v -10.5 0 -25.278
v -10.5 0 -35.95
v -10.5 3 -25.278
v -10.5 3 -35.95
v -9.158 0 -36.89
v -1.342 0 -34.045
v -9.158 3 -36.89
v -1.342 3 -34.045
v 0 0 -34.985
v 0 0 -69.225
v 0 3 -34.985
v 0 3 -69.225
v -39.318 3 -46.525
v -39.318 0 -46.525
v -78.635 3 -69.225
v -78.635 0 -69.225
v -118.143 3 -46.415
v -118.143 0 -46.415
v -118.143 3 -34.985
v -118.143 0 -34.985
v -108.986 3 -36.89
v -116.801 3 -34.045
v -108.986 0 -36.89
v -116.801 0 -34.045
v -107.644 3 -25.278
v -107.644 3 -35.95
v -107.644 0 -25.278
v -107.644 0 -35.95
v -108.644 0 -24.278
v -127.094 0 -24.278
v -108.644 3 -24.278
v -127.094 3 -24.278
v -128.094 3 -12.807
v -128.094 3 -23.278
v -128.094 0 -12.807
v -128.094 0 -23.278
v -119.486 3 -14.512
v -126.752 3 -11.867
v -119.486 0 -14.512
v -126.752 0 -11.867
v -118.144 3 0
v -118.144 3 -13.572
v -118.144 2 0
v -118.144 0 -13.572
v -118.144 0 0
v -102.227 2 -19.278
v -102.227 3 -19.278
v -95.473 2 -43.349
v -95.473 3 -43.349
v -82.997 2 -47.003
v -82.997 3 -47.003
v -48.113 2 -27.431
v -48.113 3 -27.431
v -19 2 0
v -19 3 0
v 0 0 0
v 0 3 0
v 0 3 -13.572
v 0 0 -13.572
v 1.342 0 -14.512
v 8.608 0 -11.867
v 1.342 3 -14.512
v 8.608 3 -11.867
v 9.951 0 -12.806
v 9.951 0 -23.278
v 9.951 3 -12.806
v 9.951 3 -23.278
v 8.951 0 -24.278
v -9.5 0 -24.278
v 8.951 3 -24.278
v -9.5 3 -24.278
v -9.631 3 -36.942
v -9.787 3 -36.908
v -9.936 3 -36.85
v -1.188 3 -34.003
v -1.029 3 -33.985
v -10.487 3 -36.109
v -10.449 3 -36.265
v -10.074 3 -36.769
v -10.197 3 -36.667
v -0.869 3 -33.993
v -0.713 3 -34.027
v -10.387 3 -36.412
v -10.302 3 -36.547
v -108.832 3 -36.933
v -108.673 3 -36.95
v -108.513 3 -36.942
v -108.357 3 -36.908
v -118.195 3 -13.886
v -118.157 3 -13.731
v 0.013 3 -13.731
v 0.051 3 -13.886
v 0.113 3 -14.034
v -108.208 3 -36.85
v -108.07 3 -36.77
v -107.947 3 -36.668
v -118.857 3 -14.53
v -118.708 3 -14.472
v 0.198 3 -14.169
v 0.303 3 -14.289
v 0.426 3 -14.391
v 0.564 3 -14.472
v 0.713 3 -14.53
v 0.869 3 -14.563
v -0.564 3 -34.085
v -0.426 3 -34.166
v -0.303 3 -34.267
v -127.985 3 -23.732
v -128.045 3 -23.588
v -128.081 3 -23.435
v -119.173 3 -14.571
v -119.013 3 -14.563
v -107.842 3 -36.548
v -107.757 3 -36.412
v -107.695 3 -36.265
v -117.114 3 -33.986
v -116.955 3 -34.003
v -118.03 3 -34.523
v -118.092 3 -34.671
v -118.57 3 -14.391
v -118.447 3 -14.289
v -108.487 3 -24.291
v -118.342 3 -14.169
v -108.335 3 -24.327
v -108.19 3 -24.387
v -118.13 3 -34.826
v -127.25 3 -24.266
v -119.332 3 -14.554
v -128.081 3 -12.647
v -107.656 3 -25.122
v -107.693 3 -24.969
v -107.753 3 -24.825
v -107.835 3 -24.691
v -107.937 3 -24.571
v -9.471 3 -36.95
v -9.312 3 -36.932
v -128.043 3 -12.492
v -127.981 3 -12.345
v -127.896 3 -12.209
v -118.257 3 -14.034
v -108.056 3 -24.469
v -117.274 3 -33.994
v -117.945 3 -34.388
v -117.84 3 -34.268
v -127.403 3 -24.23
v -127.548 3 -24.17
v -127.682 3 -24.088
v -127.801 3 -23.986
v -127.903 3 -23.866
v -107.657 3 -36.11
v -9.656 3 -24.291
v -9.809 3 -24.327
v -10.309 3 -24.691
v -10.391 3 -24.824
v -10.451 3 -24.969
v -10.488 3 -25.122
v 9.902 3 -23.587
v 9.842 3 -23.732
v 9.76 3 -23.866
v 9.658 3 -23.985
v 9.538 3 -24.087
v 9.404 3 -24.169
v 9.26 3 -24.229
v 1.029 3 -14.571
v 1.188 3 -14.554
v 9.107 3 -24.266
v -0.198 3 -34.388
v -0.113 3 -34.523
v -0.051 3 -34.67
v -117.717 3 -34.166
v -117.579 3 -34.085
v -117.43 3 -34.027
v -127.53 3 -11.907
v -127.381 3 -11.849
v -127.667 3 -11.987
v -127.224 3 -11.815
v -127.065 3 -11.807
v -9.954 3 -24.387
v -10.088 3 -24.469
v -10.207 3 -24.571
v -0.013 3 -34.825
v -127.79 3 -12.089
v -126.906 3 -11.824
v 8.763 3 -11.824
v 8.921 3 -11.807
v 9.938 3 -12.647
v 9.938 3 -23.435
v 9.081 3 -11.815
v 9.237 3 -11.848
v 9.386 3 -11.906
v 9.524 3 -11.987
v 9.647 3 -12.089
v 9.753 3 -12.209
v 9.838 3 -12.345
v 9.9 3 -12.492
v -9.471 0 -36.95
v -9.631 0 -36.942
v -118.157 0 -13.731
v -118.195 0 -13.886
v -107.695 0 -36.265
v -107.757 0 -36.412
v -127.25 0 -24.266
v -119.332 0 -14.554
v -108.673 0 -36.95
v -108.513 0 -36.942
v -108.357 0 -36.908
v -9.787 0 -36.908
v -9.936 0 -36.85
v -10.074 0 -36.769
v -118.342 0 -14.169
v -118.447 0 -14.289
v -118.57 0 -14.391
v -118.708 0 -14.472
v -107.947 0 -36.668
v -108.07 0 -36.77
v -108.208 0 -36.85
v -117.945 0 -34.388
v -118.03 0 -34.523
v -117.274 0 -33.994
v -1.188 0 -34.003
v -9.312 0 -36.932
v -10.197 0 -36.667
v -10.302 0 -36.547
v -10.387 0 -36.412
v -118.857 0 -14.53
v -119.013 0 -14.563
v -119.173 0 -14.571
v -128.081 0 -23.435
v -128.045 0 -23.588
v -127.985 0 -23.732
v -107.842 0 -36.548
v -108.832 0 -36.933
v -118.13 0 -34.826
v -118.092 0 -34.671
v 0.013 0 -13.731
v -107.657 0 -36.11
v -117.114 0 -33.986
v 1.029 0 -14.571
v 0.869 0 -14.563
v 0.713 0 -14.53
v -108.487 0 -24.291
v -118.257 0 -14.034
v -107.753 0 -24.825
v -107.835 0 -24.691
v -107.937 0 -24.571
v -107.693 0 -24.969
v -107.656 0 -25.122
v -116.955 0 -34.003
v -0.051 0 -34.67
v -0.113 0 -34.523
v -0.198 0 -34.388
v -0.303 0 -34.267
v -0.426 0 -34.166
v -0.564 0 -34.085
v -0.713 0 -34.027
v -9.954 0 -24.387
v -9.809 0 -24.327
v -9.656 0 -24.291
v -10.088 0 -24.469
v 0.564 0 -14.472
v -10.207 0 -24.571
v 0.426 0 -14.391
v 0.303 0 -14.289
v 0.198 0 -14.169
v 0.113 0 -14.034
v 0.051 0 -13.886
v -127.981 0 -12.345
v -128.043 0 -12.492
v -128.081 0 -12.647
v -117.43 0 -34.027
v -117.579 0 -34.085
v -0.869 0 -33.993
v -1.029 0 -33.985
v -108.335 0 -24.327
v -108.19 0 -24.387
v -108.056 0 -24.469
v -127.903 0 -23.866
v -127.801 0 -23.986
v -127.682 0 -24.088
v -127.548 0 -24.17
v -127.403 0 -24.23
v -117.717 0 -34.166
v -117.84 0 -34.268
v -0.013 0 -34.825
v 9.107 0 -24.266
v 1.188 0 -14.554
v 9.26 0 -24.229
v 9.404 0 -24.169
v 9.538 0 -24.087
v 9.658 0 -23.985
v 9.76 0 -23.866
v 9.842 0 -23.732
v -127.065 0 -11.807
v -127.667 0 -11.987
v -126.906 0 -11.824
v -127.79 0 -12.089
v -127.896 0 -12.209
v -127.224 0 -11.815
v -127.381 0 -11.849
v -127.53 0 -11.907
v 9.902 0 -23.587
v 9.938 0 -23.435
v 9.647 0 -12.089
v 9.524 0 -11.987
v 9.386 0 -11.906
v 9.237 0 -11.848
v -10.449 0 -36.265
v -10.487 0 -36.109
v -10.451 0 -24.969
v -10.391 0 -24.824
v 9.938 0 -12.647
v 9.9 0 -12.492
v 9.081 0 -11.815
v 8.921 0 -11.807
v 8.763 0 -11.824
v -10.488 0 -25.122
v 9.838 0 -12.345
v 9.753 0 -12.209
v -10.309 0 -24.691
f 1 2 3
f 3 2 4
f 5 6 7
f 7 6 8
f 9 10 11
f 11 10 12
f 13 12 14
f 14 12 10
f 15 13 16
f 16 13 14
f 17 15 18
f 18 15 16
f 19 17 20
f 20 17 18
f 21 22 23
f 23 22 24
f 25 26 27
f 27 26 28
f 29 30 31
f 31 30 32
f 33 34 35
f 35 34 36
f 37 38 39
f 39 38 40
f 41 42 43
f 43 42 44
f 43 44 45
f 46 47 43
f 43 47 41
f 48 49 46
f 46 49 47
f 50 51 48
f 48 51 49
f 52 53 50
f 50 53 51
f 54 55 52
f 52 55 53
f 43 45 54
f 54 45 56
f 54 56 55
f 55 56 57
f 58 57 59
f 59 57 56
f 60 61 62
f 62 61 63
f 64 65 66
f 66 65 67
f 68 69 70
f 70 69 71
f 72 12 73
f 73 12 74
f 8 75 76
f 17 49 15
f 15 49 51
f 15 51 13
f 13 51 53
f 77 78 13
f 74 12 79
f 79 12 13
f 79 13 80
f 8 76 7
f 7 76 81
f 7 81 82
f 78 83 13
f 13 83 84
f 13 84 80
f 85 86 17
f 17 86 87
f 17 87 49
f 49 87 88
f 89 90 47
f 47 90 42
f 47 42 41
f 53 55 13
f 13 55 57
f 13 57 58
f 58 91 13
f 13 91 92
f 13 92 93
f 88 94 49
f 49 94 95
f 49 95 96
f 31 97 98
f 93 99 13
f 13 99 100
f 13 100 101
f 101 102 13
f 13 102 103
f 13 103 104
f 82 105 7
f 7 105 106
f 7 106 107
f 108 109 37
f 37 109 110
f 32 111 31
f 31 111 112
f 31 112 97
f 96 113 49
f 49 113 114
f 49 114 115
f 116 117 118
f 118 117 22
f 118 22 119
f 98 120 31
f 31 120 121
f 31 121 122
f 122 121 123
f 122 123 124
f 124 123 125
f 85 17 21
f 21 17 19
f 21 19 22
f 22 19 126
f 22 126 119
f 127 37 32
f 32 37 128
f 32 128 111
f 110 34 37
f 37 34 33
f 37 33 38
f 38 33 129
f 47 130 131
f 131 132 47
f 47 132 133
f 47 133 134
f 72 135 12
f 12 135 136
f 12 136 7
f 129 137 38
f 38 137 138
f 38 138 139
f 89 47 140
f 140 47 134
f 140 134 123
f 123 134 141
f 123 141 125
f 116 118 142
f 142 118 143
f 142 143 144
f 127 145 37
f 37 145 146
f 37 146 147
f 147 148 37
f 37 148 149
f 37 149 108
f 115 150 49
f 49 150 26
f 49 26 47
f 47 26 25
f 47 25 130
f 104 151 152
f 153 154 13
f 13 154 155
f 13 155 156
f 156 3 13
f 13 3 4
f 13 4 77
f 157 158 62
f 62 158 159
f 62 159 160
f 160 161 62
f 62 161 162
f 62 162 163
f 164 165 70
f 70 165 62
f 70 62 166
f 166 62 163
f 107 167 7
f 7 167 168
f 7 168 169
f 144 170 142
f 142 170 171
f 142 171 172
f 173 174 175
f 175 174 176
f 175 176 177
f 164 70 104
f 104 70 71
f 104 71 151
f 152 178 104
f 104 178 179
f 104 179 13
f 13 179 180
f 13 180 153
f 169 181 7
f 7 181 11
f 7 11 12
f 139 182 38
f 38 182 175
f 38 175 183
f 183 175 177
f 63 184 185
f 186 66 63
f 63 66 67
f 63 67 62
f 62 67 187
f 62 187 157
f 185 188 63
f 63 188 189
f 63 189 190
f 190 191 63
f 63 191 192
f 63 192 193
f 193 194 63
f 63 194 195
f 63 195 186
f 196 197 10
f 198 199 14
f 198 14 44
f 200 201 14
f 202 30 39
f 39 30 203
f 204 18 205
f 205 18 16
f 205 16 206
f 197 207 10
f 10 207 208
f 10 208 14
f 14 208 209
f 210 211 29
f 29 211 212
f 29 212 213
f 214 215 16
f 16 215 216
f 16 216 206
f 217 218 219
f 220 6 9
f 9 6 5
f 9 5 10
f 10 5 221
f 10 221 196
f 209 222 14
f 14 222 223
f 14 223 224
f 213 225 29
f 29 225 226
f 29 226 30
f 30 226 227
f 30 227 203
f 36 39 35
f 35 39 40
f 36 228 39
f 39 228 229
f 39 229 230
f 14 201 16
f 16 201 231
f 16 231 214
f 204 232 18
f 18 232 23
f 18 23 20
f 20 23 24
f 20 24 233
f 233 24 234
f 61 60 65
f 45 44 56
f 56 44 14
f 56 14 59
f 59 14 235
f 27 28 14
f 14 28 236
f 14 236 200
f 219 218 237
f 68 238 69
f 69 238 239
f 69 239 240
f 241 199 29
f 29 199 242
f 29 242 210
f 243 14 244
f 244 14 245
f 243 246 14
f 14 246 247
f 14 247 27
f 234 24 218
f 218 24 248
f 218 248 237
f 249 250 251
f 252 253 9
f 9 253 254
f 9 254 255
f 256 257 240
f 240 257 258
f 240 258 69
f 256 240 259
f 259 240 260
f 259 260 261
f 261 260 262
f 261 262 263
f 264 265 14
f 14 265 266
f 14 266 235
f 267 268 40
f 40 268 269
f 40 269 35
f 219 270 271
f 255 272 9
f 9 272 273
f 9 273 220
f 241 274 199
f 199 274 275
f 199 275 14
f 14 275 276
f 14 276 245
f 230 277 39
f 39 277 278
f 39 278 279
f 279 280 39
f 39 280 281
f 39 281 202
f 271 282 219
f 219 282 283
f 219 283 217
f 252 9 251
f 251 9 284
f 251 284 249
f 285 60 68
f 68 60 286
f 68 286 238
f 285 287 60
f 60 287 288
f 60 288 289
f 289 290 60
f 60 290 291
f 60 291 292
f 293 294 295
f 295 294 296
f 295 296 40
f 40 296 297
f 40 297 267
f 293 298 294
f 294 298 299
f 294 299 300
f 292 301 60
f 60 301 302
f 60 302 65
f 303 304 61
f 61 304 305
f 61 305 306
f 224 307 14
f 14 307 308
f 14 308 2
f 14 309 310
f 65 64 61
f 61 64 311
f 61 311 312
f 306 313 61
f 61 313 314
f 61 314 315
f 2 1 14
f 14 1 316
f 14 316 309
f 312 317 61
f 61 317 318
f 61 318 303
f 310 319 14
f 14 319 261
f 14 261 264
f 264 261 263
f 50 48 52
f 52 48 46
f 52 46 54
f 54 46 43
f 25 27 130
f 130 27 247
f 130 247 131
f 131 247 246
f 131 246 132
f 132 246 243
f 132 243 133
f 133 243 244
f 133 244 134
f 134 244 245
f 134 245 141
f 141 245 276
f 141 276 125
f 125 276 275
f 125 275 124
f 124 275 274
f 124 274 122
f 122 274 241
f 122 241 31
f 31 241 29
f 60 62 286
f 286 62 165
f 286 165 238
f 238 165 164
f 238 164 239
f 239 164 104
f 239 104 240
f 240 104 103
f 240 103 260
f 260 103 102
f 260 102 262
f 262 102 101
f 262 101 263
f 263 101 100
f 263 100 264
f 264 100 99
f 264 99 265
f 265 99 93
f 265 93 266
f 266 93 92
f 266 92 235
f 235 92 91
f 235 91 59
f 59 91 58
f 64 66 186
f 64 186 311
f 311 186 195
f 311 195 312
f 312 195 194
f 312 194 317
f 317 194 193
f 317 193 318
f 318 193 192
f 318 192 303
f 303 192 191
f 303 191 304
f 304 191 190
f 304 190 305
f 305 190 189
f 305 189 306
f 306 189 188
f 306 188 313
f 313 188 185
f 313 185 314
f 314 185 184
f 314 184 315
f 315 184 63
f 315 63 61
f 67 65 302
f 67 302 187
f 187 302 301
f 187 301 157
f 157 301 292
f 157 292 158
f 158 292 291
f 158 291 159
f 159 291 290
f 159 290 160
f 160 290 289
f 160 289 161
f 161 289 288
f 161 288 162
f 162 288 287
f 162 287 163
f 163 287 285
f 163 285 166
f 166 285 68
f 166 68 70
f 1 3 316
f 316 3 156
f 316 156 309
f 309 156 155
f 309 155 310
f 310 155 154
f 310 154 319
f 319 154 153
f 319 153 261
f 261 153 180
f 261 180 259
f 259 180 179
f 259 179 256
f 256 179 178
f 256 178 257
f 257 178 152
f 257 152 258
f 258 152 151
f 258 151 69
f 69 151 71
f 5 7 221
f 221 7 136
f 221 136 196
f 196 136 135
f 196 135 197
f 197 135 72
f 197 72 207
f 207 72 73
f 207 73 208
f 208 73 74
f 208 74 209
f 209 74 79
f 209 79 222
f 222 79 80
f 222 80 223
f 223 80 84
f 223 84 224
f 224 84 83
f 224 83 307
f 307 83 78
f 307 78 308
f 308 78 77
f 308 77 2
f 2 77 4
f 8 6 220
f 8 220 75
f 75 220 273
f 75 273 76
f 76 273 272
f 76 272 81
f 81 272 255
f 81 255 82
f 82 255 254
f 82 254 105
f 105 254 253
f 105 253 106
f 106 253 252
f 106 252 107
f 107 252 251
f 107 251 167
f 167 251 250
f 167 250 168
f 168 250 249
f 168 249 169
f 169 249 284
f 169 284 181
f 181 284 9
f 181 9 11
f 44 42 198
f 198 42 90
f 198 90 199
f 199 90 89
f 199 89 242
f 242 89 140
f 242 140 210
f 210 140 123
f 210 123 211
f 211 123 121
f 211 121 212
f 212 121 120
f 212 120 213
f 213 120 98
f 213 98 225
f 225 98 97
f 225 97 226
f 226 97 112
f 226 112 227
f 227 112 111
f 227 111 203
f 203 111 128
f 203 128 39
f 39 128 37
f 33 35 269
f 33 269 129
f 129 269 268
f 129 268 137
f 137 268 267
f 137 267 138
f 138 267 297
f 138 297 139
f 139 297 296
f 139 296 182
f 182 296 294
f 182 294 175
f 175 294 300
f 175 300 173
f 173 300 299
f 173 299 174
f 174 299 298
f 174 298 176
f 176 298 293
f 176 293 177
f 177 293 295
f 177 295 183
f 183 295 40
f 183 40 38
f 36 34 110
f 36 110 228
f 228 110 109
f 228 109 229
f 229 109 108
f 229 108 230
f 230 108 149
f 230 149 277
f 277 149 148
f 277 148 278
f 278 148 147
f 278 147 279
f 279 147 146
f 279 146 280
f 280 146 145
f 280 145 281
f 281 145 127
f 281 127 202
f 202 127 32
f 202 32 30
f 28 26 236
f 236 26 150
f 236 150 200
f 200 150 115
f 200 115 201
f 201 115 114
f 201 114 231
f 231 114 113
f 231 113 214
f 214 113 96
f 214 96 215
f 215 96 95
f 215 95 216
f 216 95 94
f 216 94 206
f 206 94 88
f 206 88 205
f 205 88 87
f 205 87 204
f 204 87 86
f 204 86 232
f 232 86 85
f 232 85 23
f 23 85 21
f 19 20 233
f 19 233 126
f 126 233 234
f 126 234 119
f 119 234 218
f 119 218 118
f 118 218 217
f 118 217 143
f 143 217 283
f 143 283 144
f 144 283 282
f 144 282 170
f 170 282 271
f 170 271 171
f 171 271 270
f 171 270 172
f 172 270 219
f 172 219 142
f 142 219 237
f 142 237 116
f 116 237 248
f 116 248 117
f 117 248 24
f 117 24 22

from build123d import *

# Parameters (mm, degrees)
P_IDAT_VYSUNUT_M1_DEPTH = 3
P_IDAT_VYSUNUT_M2_DEPTH = 2
ZAOBLIT3_R              = 1


with BuildPart() as part:
    # Skica1 → P_idat vysunut_m1 (new body)
    with BuildSketch(Plane(origin=(0, 0, 0), x_dir=(1, 0, 0), z_dir=(0, 1, 0))):
        Polygon((-118.143750166, 15), (-118.143750166, 0), (-102.227105248, 19.278496169), (-95.473037065, 43.348863075), (-82.997228437, 47.003202833), (-48.112980408, 27.430537213), (-19, 0), (0, 0), (0, 15), (9.950504516, 11.37831254), (9.950504516, 24.27831254), (-10.5, 24.27831254), (-10.5, 37.37831254), (0, 33.55662508), (0, 69.224902673), (-39.317553332, 46.524902673), (-78.635106664, 69.224902673), (-118.143185584, 46.414902673), (-118.143185584, 33.5570142), (-107.643750166, 37.378496169), (-107.643750166, 24.278496169), (-128.093750166, 24.278496169), (-128.093750166, 11.378496169), align=None)
    extrude(amount=P_IDAT_VYSUNUT_M1_DEPTH)

    # Skica1_3 → P_idat vysunut_m2 (add)
    with BuildSketch(Plane(origin=(0, 0, 0), x_dir=(1, 0, 0), z_dir=(0, 1, 0))):
        Polygon((-102.227105248, 19.278496169), (-118.143750166, 0), (-19, 0), (-48.112980408, 27.430537213), (-82.997228437, 47.003202833), (-95.473037065, 43.348863075), align=None)
    extrude(amount=P_IDAT_VYSUNUT_M2_DEPTH)

    # Zaoblit3
    zaoblit3_edges = [part.edges().sort_by_distance(p)[0] for p in [
        (-10.5, 1.5, -24.27831254),
        (9.950504516, 1.5, -24.27831254),
        (9.950504516, 1.5, -11.37831254),
        (0, 1.5, -15),
        (-118.143750166, 1.5, -15),
        (-128.093750166, 1.5, -11.378496169),
        (-128.093750166, 1.5, -24.278496169),
        (-107.643750166, 1.5, -24.278496169),
        (-107.643750166, 1.5, -37.378496169),
        (-118.143185584, 1.5, -33.5570142),
        (0, 1.5, -33.55662508),
        (-10.5, 1.5, -37.37831254),
    ]]
    fillet(zaoblit3_edges, radius=ZAOBLIT3_R)


solid = part.part
